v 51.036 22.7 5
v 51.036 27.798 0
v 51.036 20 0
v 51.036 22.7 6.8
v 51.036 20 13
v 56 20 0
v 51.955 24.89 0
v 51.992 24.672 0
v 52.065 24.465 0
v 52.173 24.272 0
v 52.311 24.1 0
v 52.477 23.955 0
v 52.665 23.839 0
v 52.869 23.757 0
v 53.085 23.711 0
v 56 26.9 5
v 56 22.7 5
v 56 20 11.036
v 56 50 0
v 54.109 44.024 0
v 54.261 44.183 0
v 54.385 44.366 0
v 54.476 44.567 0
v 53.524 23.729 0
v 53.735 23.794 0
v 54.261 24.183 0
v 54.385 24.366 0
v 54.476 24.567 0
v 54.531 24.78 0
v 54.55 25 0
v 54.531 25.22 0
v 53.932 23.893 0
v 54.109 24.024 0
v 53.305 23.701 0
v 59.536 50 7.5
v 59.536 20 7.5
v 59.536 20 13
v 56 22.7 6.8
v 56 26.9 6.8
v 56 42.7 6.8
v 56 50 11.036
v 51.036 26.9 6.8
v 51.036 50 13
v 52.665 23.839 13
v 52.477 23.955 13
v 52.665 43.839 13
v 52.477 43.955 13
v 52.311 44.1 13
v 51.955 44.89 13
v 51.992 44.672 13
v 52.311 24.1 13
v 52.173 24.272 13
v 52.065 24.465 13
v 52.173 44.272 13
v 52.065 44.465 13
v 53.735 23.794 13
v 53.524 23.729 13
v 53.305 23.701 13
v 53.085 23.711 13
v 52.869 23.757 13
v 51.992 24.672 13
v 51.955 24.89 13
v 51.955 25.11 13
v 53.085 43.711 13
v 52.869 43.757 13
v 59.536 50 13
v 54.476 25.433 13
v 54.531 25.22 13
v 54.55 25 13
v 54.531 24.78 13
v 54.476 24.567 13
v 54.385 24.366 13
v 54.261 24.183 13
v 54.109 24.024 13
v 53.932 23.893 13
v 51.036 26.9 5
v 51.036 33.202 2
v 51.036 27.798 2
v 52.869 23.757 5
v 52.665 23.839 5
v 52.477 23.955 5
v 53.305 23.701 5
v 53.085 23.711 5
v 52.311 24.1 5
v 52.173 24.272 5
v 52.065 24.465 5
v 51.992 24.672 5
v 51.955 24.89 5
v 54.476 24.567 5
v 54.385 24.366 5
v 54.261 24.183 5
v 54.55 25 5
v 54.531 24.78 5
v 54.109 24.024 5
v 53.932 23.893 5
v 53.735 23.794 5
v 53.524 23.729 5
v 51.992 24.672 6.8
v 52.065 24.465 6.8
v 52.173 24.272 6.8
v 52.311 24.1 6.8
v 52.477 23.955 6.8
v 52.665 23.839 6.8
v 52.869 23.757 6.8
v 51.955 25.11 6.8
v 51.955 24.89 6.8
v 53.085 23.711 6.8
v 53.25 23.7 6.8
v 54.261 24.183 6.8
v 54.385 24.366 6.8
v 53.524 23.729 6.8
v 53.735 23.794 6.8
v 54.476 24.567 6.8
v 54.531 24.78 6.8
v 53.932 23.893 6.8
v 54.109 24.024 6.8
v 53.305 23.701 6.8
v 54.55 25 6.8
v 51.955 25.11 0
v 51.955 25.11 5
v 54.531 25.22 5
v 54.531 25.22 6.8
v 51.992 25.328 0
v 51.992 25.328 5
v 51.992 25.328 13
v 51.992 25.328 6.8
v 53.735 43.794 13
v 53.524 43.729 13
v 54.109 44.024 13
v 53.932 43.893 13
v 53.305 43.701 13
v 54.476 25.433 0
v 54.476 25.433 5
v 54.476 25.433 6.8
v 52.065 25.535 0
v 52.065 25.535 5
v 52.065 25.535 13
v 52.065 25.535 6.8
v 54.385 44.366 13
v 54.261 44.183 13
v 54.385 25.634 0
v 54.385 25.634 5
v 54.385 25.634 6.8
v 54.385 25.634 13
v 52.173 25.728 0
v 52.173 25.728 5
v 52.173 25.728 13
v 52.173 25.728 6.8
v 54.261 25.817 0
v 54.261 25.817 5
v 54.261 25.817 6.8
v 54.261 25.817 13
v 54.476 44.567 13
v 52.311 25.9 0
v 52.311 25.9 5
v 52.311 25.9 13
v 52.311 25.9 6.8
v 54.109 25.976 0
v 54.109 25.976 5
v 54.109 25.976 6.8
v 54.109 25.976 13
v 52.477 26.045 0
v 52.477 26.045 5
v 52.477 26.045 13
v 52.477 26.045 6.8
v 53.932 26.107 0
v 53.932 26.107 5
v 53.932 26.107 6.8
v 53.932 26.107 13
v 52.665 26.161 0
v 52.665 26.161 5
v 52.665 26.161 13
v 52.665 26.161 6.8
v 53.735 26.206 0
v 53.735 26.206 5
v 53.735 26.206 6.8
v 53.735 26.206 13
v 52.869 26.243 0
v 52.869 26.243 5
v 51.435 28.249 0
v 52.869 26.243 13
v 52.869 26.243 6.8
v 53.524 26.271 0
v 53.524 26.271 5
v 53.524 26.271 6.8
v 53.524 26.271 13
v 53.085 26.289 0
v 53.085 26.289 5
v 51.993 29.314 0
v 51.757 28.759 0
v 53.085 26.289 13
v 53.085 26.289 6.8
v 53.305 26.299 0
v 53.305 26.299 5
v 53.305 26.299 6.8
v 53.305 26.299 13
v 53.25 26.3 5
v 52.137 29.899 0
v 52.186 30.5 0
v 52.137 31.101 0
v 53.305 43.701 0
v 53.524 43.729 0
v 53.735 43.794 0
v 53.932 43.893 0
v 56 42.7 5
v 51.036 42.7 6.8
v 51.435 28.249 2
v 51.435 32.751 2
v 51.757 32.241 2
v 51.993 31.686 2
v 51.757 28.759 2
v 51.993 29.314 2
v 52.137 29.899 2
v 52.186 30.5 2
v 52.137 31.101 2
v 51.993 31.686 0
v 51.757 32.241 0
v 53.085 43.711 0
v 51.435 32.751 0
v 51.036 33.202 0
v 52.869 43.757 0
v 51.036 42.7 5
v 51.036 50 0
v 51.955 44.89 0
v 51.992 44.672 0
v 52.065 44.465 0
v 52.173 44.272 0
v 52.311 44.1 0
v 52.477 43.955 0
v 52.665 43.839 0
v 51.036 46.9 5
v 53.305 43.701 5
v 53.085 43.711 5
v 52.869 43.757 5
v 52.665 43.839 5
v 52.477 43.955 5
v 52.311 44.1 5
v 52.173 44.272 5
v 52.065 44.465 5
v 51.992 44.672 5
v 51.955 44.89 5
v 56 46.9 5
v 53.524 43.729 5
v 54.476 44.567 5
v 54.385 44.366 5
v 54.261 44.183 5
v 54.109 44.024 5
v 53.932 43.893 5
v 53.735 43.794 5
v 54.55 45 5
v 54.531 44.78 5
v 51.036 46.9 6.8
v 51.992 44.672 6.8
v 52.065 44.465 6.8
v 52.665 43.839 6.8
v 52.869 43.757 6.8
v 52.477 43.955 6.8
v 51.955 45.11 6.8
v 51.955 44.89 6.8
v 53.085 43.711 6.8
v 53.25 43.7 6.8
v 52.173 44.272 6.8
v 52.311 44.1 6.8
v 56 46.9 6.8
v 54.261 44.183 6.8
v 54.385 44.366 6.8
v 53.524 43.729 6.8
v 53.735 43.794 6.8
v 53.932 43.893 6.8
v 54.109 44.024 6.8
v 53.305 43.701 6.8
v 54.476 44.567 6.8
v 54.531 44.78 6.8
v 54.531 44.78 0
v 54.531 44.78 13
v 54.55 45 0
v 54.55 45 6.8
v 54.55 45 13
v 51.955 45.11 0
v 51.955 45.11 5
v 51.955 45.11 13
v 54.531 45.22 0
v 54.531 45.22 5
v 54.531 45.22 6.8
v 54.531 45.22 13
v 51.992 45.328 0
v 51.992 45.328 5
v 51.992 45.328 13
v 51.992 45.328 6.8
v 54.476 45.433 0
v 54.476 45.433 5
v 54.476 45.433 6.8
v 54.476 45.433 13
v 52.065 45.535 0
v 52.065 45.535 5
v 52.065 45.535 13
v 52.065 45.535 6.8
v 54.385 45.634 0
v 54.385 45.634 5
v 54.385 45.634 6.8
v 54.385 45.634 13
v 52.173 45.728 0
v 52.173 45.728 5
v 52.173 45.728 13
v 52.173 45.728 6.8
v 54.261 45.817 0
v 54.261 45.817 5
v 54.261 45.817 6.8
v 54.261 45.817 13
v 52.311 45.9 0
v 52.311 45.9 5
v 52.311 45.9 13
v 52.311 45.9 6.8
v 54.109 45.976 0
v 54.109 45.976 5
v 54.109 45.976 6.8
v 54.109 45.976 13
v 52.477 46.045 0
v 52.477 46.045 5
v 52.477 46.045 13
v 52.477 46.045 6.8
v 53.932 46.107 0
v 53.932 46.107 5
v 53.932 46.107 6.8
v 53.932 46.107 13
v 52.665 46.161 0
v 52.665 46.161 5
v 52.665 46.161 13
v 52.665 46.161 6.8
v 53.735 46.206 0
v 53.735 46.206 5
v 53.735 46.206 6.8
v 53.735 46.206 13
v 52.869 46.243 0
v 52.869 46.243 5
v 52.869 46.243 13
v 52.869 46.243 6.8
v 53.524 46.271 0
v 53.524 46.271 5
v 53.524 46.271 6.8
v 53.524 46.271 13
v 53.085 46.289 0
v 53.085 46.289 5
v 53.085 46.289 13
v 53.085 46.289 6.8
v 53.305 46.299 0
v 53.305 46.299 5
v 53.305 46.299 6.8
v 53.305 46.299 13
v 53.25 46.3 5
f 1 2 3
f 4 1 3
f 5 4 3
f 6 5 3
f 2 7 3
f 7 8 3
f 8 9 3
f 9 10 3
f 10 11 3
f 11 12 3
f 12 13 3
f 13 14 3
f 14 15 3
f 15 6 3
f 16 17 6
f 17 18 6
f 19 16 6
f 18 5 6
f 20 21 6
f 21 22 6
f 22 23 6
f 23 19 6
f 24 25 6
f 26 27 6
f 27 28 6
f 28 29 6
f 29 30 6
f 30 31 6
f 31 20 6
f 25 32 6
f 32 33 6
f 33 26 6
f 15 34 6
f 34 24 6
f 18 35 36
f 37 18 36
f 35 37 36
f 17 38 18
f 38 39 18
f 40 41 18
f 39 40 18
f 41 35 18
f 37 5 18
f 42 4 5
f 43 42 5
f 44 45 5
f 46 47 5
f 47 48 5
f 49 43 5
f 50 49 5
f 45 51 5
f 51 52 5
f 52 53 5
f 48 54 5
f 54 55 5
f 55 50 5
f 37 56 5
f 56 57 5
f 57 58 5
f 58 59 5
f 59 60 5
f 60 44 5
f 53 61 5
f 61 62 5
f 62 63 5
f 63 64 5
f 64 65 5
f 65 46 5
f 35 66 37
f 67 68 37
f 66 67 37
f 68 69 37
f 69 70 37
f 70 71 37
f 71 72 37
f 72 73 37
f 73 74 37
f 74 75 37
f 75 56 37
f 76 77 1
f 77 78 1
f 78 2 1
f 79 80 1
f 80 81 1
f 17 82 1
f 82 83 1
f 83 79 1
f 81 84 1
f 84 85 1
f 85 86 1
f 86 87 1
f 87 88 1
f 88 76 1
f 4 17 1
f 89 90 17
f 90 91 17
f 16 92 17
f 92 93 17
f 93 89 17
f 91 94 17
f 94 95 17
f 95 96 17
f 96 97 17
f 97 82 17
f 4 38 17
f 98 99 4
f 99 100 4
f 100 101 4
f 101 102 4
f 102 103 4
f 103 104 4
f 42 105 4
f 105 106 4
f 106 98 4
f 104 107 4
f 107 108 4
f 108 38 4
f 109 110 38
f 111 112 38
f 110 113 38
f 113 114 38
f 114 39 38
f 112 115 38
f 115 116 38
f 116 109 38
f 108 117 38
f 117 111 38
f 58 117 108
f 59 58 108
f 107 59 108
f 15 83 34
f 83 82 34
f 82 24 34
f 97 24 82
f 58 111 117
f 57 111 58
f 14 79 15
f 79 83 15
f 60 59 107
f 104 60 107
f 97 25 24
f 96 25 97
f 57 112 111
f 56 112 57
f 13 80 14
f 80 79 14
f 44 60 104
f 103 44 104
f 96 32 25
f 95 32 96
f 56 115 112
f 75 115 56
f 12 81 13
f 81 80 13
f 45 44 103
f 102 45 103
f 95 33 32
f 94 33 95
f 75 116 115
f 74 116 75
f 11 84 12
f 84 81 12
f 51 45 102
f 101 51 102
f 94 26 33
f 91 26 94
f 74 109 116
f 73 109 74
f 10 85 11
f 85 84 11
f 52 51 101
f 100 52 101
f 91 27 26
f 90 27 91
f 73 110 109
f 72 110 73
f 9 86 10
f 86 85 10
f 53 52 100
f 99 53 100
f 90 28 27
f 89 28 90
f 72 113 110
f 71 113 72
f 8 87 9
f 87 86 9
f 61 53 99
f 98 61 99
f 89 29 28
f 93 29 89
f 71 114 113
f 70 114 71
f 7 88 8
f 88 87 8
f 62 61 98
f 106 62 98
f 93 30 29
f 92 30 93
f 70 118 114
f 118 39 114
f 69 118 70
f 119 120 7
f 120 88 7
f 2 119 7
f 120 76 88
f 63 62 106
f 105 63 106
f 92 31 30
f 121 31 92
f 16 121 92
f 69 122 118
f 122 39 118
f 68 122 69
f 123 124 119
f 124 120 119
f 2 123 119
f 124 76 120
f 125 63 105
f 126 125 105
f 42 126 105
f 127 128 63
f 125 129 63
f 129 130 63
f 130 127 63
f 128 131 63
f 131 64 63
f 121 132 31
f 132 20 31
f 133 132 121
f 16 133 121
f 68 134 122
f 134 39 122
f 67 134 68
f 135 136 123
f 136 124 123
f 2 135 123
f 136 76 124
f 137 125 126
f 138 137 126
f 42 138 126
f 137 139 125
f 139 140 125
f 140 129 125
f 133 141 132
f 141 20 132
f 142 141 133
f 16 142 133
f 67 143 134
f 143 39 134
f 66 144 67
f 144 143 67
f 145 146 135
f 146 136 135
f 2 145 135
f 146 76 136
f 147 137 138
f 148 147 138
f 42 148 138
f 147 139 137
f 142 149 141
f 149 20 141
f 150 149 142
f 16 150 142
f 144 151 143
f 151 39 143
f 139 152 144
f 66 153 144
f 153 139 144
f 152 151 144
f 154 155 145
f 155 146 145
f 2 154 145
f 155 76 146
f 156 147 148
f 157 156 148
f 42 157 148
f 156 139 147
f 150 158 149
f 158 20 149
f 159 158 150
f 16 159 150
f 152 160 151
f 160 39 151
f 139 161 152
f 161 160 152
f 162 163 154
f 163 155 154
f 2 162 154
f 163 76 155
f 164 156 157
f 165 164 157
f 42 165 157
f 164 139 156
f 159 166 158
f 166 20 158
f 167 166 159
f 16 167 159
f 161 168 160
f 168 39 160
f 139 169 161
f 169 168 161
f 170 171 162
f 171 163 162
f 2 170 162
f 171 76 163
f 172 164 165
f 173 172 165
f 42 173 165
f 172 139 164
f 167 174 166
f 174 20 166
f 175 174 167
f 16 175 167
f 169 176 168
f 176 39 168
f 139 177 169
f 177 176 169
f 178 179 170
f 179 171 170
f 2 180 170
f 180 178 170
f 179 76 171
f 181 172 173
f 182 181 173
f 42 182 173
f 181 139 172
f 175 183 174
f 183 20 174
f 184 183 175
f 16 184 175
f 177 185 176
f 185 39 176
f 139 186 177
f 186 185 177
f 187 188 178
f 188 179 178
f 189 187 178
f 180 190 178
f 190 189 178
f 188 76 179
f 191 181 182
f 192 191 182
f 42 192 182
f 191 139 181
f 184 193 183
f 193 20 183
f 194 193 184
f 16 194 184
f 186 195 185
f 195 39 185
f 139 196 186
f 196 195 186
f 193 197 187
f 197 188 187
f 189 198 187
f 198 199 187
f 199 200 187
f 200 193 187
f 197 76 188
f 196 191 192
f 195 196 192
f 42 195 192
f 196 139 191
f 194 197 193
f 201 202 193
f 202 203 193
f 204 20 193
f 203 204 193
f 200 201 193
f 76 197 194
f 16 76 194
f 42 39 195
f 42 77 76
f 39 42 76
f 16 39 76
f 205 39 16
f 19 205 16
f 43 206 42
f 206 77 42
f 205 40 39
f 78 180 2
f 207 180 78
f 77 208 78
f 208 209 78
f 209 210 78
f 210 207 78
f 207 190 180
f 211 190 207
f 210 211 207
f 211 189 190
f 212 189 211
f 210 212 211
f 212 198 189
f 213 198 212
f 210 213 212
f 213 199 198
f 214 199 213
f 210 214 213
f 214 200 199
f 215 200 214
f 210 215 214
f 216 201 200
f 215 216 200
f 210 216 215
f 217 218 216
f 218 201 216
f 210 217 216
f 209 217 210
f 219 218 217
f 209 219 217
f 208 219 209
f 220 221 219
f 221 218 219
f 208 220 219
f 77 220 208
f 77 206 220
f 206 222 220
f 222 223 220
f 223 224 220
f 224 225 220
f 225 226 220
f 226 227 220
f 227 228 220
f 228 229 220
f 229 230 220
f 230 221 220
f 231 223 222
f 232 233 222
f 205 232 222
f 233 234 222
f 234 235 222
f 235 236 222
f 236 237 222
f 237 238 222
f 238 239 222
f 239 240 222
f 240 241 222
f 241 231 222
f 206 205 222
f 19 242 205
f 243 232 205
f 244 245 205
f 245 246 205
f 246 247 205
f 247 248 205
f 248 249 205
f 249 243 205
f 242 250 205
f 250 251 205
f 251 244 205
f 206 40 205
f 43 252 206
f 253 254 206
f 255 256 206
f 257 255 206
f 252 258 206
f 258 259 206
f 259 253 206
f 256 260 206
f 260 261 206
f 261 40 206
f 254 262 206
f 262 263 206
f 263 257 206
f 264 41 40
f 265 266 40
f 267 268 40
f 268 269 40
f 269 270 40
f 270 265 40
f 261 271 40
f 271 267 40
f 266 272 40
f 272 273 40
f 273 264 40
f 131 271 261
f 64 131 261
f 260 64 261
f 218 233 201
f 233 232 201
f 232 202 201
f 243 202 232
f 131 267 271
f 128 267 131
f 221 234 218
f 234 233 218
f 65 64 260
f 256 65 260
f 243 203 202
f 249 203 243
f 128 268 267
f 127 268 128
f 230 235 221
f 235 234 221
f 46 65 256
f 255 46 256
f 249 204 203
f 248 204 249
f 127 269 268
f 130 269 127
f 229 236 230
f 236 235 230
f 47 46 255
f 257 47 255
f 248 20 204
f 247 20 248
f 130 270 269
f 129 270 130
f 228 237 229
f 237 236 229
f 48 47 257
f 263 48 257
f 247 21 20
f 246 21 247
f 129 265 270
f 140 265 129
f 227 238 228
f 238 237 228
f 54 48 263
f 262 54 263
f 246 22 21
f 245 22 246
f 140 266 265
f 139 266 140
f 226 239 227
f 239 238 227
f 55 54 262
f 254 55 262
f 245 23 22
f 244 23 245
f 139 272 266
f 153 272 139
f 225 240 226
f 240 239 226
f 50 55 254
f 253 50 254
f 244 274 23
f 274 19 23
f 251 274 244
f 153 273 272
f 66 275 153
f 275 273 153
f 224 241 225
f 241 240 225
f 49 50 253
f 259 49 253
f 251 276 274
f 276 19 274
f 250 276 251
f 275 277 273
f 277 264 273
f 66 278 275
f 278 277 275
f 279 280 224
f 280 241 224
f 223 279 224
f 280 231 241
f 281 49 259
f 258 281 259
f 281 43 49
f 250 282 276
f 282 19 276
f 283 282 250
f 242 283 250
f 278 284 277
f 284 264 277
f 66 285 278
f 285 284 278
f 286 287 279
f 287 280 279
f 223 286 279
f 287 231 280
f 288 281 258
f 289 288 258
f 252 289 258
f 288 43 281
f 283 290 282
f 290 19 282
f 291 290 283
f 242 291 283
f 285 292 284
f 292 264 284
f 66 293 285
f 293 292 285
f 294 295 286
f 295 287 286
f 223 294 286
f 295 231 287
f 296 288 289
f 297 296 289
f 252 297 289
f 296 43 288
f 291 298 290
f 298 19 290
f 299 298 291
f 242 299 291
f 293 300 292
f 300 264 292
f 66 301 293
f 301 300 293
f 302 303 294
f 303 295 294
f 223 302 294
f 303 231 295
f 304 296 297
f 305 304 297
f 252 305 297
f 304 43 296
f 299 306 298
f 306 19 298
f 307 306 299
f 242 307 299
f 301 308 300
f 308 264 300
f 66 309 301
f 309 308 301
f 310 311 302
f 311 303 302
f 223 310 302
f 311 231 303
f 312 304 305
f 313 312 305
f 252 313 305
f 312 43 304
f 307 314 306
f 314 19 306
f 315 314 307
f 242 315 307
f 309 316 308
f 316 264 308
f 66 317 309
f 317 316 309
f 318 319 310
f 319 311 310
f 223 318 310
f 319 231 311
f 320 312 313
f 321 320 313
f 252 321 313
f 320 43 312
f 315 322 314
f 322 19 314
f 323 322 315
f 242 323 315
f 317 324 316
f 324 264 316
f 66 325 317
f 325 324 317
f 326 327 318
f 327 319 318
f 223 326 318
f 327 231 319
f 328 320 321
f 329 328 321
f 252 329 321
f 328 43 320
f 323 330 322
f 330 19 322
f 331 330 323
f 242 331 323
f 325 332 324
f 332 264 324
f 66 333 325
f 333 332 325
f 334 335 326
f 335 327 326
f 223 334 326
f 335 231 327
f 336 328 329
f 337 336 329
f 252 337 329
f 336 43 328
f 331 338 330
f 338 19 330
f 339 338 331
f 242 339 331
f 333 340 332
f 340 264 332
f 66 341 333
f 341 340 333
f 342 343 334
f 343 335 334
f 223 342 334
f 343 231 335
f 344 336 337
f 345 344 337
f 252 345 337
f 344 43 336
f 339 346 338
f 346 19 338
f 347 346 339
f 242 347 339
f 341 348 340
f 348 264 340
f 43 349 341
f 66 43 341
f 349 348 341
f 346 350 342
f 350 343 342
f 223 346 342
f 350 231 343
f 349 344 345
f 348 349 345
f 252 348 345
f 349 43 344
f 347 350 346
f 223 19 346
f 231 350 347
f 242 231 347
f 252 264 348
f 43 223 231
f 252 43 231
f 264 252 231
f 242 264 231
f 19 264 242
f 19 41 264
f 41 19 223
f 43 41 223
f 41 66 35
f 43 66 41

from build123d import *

# Parameters (mm, degrees)
STOCK_NOZZLE4_1_OUTLINE_W = 4.964466094
STOCK_NOZZLE4_1_OUTLINE_H = 15
STOCK_NOZZLE4_1_DEPTH     = 50
STOCK_NOZZLE4_1_START     = 20
STOCK_NOZZLE4_1_2_DEPTH   = 30
SKETCH1_W                 = 20
SKETCH1_H                 = 2
CUT_EXTRUDE1_DEPTH        = 80.180046713
SKETCH2_W                 = 11.16019391
SKETCH2_H                 = 20
CUT_EXTRUDE2_DEPTH        = 79.825629065
SKETCH6_R                 = 1.3
CUT_EXTRUDE3_DEPTH        = 79.825629065
SKETCH7_W                 = 1.8
SKETCH7_H                 = 4.2
CUT_EXTRUDE4_DEPTH        = 4.964466094
SKETCH8_R                 = 3.75
CUT_EXTRUDE5_DEPTH        = 2


# Read off the part's stored shape, not the designer's step: Stock-nozzle4-1
with BuildPart() as part:
    # Stock-nozzle4-1 outline → Stock-nozzle4-1 (new body)
    with BuildSketch(Plane(origin=(0, 0, 0), x_dir=(1, 0, 0), z_dir=(0, 1, 0))):
        with Locations((53.517766953, -7.5)):
            Rectangle(STOCK_NOZZLE4_1_OUTLINE_W, STOCK_NOZZLE4_1_OUTLINE_H)
    extrude(amount=STOCK_NOZZLE4_1_DEPTH)

    # Stock-nozzle4-1 2 outline → Stock-nozzle4-1 2 (add)
    with BuildSketch(Plane(origin=(0, 0, 0), x_dir=(1, 0, 0), z_dir=(0, 1, 0)).offset(STOCK_NOZZLE4_1_START)):
        Polygon((56, -11.035533906), (56, -15), (59.535533906, -15), (59.535533906, -7.5), align=None)
    extrude(amount=STOCK_NOZZLE4_1_2_DEPTH)

    # Sketch1 → Cut-Extrude1 (cut, through all)
    with BuildSketch(Plane(origin=(0, 50, 0), x_dir=(1, 0, 0), z_dir=(0, 1, 0))):
        with Locations((59.035533906, -14)):
            Rectangle(SKETCH1_W, SKETCH1_H)
    extrude(amount=-CUT_EXTRUDE1_DEPTH, mode=Mode.SUBTRACT)

    # Sketch2 → Cut-Extrude2 (cut, through all)
    with BuildSketch(Plane.XY.offset(13)):
        with Locations((56.580096955, 10)):
            Rectangle(SKETCH2_W, SKETCH2_H)
    extrude(amount=-CUT_EXTRUDE2_DEPTH, mode=Mode.SUBTRACT)

    # Sketch6 → Cut-Extrude3 (cut, through all)
    with BuildSketch(Plane.XY.offset(13)):
        with Locations((53.25, 45)):
            Circle(SKETCH6_R)
        with Locations((53.25, 25)):
            Circle(SKETCH6_R)
    extrude(amount=-CUT_EXTRUDE3_DEPTH, mode=Mode.SUBTRACT)

    # Sketch7 → Cut-Extrude4 (cut)
    with BuildSketch(Plane.ZY.offset(-51.035533906)):
        with Locations((5.9, 44.8)):
            Rectangle(SKETCH7_W, SKETCH7_H)
        with Locations((5.9, 24.8)):
            Rectangle(SKETCH7_W, SKETCH7_H)
    extrude(amount=-CUT_EXTRUDE4_DEPTH, mode=Mode.SUBTRACT)

    # Sketch8 → Cut-Extrude5 (cut)
    with BuildSketch(Plane(origin=(0, 0, 0), x_dir=(-1, 0, 0), z_dir=(0, 0, -1))):
        with Locations((-48.435533906, 30.5)):
            Circle(SKETCH8_R)
    extrude(amount=-CUT_EXTRUDE5_DEPTH, mode=Mode.SUBTRACT)


solid = part.part
